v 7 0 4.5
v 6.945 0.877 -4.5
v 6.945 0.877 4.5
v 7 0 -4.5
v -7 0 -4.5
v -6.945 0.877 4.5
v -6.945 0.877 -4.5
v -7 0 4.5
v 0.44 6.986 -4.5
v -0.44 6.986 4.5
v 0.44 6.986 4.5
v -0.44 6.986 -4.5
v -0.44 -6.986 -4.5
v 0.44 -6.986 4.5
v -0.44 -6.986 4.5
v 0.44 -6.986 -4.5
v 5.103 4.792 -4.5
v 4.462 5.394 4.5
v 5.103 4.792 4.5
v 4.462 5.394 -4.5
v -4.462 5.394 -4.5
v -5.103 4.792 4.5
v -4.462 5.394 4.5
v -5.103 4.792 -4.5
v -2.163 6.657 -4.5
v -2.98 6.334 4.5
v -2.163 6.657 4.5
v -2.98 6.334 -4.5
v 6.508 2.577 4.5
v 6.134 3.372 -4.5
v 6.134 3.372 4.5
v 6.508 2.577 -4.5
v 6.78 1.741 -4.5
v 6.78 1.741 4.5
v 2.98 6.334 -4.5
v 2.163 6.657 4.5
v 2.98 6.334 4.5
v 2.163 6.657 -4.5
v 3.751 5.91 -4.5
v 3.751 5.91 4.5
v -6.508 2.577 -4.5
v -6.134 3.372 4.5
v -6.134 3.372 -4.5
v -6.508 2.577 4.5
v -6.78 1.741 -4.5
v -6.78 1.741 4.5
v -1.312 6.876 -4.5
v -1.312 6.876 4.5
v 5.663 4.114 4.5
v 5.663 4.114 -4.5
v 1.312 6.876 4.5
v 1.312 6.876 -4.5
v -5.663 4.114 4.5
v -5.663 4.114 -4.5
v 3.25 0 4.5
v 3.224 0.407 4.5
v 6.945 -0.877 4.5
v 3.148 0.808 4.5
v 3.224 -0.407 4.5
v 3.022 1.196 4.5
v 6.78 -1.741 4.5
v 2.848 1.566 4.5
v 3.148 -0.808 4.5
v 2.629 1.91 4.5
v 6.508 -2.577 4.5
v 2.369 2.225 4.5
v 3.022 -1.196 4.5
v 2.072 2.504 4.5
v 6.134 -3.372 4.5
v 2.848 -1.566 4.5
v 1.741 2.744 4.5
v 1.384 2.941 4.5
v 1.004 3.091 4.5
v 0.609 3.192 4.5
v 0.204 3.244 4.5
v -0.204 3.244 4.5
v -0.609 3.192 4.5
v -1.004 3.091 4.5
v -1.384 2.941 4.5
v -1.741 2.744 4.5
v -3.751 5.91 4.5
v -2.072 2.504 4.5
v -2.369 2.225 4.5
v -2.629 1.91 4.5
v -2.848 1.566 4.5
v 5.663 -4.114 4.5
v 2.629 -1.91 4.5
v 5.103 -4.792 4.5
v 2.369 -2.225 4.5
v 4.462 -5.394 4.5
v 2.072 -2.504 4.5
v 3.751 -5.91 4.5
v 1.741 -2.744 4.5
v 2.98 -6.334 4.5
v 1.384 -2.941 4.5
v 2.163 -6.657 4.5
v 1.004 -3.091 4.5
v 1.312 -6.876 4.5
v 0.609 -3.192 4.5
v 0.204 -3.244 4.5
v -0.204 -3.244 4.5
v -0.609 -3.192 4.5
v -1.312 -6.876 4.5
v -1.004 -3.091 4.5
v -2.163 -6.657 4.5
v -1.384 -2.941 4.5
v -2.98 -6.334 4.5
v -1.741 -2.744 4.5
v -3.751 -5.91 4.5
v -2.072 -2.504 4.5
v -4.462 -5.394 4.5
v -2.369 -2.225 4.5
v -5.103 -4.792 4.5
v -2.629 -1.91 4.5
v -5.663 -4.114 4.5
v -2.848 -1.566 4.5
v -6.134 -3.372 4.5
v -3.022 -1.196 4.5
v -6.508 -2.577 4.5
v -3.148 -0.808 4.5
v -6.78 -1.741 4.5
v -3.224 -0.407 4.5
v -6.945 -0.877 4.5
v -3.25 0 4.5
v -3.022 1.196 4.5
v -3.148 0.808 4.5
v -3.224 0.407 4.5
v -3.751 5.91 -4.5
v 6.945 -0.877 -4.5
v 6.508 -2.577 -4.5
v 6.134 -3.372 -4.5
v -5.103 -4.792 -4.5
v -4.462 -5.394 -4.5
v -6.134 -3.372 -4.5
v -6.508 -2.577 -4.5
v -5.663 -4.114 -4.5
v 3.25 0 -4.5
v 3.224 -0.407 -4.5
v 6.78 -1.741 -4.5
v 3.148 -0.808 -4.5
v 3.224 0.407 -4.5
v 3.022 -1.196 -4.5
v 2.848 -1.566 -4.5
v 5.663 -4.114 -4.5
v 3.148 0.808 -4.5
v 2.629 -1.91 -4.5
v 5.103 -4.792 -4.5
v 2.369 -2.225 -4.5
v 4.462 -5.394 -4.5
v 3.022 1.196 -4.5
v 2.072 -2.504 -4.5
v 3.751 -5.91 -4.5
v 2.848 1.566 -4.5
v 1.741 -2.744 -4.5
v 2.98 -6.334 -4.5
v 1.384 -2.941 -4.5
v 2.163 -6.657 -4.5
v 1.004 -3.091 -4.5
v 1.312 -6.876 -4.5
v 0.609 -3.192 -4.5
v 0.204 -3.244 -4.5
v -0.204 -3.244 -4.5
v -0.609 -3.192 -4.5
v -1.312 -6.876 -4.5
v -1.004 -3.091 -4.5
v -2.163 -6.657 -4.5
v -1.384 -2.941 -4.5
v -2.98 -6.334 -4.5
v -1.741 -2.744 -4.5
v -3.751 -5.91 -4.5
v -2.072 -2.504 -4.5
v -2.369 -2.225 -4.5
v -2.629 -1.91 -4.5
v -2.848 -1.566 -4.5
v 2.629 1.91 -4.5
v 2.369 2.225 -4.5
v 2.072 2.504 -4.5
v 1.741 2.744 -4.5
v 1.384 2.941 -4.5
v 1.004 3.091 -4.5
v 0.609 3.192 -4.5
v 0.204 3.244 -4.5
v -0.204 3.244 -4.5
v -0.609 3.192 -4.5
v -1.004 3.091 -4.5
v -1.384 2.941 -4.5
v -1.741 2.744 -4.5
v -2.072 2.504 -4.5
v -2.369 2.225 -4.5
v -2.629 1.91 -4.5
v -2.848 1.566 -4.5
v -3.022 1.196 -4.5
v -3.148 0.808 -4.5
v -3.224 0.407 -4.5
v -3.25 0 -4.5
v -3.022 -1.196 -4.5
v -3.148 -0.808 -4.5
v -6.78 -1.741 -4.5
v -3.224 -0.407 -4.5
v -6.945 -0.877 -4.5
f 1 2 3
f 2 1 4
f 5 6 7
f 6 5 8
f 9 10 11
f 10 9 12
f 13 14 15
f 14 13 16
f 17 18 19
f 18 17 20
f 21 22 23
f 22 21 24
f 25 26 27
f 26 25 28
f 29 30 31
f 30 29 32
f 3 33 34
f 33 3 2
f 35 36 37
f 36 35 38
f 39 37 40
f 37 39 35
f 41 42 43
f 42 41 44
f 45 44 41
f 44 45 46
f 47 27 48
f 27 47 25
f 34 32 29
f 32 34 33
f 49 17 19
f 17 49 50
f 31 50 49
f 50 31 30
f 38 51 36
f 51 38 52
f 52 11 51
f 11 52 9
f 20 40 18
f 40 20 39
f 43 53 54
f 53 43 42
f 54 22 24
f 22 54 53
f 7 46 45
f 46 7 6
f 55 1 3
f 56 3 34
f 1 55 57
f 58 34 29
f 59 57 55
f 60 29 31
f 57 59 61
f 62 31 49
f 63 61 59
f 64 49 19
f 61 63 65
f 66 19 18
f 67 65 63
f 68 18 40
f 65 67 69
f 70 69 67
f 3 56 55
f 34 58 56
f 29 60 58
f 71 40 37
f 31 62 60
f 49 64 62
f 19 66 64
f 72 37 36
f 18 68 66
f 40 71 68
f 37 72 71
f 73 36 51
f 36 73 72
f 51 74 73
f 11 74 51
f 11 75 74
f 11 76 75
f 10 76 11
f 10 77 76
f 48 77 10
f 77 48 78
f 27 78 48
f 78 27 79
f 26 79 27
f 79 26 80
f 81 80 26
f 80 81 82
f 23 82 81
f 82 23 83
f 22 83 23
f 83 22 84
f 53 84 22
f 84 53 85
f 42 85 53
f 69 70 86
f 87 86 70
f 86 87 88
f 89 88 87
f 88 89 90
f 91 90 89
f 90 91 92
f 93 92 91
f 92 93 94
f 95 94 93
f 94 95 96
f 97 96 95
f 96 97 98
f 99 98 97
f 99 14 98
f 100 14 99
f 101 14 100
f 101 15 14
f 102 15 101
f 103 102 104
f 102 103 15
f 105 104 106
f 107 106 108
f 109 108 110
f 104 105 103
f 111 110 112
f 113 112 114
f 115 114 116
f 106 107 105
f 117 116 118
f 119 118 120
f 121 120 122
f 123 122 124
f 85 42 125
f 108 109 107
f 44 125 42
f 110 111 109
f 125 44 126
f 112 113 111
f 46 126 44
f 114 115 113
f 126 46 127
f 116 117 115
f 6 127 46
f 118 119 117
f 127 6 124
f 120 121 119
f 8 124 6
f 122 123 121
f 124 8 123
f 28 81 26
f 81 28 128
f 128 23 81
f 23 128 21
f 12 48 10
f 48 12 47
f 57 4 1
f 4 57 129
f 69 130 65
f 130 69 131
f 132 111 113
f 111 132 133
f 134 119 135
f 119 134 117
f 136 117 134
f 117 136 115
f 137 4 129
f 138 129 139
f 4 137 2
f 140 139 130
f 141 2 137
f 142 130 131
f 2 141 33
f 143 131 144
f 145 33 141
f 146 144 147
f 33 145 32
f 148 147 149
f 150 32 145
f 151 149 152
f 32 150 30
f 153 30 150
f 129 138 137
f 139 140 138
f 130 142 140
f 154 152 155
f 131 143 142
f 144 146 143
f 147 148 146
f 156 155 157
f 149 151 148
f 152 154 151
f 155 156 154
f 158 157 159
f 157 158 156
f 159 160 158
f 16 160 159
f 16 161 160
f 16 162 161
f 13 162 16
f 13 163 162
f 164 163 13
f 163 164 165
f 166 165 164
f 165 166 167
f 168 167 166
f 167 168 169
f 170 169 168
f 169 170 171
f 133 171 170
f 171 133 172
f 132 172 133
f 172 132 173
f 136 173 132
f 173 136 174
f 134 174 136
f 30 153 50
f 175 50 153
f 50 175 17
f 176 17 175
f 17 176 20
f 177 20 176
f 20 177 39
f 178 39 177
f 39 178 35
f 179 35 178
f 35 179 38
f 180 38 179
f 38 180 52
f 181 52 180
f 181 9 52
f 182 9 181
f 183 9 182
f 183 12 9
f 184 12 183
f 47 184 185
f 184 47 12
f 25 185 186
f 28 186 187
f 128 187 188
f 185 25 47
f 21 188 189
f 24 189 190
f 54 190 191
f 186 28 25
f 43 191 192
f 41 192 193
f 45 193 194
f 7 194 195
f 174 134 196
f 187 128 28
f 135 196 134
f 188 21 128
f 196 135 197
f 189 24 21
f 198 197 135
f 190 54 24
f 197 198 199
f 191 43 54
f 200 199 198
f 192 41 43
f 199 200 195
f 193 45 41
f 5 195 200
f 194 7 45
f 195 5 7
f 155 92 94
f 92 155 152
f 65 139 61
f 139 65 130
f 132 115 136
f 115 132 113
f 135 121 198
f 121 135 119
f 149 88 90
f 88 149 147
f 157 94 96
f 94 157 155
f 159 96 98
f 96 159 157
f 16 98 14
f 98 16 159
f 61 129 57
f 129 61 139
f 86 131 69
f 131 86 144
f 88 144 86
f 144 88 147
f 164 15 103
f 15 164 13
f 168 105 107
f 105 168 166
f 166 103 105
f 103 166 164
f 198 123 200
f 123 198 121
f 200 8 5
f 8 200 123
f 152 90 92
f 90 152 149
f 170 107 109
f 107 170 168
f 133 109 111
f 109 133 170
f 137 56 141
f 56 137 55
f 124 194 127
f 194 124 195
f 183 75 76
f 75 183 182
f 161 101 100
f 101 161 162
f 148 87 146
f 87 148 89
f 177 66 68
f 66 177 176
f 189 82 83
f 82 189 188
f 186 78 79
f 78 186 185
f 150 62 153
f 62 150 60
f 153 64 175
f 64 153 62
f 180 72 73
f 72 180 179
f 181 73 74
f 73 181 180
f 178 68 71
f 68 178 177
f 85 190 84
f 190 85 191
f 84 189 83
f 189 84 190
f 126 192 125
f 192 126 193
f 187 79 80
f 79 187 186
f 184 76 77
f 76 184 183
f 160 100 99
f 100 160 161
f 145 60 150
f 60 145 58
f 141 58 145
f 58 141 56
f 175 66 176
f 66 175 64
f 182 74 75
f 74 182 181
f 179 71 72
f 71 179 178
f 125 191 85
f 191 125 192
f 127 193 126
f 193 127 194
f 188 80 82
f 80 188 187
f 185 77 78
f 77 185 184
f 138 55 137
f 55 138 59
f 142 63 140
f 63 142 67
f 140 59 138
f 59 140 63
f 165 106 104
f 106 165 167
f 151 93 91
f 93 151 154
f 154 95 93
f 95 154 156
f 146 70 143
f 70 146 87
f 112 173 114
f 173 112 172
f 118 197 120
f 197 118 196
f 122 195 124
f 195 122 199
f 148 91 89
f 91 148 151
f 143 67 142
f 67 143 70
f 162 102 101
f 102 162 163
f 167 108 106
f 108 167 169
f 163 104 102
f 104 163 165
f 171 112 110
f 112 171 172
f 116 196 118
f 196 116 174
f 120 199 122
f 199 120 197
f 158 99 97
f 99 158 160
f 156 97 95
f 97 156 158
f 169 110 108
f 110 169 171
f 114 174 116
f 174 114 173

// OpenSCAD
$fn = 50;


difference() {
	union() {
		translate(v = [0, 0, -4.5000000000]) {
			cylinder(h = 9, r = 7.0000000000);
		}
	}
	union() {
		translate(v = [0, 0, -100.0000000000]) {
			cylinder(h = 200, r = 3.2500000000);
		}
	}
}
